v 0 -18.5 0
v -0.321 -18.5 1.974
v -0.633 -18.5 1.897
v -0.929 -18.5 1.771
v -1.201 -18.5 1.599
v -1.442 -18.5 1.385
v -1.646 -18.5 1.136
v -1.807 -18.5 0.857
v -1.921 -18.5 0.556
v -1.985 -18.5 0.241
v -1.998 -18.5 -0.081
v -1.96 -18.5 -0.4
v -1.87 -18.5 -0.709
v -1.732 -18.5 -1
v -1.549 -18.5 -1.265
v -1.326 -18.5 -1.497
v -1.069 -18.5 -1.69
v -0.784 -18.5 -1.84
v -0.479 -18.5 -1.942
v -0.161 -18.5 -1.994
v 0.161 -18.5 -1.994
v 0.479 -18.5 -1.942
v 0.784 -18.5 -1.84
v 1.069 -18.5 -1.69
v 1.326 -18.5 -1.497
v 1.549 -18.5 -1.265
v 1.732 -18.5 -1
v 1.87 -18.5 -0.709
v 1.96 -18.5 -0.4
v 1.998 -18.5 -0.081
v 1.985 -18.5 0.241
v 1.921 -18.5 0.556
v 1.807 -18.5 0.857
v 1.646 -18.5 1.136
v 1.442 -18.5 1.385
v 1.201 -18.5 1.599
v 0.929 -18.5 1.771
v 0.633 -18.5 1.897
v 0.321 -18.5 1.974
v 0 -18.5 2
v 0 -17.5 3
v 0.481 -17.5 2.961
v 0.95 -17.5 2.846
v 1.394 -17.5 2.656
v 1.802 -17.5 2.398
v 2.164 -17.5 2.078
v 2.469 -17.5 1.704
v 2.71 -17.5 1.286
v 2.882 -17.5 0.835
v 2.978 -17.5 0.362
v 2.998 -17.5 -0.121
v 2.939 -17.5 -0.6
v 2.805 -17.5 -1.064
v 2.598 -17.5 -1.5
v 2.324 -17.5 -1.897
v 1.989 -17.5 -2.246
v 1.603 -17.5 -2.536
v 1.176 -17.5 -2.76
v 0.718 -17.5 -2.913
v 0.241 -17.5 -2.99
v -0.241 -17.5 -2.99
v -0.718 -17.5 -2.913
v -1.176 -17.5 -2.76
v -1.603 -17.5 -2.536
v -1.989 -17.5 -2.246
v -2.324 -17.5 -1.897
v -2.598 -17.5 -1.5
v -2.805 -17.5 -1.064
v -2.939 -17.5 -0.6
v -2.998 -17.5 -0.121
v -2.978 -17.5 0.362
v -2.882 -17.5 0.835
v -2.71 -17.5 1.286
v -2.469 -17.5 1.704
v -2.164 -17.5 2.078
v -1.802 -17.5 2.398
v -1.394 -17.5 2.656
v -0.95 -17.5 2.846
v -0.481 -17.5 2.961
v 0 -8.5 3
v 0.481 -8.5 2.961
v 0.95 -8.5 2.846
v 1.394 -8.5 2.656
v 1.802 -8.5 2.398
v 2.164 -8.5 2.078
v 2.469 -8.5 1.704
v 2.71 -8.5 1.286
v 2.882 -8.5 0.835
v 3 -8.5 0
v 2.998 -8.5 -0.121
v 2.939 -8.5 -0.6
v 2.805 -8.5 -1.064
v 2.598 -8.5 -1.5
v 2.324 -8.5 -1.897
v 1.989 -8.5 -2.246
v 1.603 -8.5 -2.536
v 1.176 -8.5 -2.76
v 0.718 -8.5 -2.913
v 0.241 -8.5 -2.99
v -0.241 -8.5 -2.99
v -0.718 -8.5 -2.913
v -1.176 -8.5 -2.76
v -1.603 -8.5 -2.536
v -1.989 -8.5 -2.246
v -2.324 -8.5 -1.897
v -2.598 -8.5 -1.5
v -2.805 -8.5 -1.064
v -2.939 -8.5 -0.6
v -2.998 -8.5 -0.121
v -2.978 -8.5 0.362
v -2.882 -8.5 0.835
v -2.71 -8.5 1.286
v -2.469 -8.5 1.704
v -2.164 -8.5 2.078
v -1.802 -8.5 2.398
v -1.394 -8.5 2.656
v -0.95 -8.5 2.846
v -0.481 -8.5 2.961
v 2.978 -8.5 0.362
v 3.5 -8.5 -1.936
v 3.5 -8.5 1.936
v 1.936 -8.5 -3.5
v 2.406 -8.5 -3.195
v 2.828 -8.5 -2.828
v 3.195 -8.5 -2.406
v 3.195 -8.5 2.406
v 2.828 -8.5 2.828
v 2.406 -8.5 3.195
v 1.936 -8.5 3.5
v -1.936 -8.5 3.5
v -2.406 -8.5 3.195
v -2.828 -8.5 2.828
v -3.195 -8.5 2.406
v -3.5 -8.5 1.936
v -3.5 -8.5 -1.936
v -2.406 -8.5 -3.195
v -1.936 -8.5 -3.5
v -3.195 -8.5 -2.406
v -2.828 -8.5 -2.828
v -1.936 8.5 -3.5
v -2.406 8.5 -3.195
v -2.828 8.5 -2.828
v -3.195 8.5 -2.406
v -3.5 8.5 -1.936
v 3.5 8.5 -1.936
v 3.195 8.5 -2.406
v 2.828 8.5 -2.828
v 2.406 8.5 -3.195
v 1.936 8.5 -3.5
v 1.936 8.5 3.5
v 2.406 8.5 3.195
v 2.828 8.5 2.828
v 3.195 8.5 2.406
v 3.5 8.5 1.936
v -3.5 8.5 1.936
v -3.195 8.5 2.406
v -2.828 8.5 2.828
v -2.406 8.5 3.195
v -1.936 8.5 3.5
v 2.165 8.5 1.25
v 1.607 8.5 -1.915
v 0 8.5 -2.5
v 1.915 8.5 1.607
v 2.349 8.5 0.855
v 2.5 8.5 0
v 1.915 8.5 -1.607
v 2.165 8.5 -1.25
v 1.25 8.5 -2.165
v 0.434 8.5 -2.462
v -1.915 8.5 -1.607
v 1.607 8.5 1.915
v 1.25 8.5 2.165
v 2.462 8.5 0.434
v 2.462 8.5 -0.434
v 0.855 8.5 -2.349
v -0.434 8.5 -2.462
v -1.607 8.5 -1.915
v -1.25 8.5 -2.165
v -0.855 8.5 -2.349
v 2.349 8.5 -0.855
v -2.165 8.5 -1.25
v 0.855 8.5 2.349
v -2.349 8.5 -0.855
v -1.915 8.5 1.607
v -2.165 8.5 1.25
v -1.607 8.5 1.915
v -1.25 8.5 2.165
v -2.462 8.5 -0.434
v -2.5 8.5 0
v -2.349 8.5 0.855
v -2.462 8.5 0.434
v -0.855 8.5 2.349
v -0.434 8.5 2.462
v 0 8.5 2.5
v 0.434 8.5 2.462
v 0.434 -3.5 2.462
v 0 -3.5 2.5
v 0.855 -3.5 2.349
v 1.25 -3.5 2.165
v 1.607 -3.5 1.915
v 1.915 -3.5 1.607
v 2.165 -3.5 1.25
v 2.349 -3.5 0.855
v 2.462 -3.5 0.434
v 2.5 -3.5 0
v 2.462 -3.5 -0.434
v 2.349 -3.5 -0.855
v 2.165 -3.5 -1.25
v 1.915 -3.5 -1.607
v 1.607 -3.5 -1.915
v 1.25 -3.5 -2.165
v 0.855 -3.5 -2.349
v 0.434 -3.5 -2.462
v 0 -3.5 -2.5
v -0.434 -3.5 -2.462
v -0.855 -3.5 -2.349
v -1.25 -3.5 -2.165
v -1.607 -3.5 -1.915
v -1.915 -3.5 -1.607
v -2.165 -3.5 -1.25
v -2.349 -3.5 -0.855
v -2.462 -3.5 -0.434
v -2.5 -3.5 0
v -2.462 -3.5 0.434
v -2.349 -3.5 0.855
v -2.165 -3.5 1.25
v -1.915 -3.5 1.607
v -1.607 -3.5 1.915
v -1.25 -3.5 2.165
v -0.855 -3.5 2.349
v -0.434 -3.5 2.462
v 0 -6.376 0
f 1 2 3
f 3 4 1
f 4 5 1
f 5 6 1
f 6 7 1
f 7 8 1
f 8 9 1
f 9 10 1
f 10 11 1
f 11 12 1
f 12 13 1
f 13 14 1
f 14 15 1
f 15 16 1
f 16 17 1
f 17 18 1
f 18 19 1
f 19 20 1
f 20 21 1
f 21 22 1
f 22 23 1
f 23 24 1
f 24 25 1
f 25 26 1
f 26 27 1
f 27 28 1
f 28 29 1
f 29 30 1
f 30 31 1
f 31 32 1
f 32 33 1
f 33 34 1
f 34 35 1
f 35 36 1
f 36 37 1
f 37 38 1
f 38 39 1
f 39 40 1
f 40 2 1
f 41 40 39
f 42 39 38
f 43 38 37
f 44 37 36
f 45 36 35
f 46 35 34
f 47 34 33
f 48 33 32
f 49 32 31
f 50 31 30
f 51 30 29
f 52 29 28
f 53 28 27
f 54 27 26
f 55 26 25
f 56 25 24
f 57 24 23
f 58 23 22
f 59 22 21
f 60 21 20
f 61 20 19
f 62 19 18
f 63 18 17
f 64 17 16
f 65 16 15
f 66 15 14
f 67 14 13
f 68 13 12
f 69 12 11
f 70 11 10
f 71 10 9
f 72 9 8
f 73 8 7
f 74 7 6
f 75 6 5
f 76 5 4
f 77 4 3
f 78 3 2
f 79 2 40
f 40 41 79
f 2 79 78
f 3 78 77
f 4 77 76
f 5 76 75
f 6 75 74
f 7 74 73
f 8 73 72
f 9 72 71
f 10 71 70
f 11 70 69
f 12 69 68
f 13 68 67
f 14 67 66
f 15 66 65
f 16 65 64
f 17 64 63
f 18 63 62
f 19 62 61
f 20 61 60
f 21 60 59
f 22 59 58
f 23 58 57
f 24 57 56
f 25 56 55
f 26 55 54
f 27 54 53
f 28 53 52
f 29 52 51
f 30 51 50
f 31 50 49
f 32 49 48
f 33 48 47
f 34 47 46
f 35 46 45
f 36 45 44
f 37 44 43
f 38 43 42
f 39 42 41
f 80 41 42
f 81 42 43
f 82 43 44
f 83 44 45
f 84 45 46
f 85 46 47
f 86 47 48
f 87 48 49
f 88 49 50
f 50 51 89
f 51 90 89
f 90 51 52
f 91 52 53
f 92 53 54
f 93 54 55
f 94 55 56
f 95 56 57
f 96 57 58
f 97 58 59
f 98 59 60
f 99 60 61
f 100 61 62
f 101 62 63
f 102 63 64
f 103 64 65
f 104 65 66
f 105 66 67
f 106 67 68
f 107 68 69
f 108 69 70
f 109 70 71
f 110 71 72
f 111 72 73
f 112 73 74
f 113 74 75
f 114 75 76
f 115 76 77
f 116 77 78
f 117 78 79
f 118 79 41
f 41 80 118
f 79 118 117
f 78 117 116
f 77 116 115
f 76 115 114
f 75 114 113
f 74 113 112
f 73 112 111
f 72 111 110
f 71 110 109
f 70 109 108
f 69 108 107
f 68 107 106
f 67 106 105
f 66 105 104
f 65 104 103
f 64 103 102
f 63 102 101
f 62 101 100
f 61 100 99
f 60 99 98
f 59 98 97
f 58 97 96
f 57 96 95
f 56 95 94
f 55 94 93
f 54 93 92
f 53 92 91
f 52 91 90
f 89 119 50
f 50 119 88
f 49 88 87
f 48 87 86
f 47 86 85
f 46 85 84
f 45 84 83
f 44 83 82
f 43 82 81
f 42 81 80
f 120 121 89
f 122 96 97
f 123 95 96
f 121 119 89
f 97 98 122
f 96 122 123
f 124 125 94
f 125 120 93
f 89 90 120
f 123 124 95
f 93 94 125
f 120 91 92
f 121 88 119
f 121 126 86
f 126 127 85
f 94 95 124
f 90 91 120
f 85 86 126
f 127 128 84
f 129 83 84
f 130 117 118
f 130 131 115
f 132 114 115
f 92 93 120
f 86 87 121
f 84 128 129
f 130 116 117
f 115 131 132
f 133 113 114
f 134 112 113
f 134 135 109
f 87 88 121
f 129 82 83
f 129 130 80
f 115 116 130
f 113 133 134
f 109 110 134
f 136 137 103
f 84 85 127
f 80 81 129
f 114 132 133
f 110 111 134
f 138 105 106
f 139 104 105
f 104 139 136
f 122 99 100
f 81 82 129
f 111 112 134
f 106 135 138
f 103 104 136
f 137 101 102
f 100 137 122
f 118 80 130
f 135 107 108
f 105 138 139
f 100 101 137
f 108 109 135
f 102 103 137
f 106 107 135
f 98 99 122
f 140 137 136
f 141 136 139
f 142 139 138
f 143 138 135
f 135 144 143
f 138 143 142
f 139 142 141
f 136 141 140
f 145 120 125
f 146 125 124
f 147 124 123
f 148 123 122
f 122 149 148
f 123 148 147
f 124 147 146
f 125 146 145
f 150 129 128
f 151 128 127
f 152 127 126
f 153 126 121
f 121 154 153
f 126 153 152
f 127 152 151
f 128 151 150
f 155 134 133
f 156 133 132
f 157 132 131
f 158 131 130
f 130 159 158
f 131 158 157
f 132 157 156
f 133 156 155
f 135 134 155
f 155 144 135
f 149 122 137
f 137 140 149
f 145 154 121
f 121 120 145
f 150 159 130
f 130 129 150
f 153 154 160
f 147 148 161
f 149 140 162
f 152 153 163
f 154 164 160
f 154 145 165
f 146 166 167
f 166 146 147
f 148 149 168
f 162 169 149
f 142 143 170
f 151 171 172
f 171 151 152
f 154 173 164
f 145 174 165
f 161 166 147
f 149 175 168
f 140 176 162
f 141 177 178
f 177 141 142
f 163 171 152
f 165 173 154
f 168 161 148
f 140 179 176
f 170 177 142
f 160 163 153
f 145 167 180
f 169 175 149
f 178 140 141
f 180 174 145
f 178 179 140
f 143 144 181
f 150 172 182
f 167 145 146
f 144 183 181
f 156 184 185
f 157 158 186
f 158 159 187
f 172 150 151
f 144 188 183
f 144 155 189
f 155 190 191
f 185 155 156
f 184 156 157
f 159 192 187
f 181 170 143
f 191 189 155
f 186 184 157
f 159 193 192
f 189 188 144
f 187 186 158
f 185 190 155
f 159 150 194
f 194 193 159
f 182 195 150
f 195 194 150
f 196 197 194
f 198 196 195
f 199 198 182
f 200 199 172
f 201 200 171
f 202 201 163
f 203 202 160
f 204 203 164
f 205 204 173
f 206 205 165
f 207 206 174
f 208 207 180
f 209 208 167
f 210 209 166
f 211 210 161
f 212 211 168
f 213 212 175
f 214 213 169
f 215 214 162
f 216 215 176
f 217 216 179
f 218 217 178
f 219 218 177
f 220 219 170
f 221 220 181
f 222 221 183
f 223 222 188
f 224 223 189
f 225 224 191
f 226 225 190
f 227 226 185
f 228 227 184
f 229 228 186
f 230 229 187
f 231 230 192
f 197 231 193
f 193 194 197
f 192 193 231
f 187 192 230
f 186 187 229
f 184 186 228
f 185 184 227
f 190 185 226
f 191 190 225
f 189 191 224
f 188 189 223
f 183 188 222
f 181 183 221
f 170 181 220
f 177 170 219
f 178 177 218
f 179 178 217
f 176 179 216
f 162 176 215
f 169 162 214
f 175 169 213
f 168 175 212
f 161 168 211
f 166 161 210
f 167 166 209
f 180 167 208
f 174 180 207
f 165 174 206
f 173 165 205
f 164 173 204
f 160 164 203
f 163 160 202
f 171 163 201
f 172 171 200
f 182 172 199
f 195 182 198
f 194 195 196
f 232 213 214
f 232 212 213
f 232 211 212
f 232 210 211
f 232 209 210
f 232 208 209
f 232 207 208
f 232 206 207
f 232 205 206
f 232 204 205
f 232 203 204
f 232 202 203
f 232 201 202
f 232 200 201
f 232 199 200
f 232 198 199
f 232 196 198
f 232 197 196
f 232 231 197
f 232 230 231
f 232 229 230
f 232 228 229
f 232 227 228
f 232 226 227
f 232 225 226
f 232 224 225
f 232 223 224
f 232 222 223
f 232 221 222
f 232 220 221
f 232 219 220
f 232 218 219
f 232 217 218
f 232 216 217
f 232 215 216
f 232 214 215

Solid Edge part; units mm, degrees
sketch "Sketch1" plane through (0, 0, 0) normal (0, -1, 0) x (1, 0, 0)
  circle A0 centre (0, 0) radius 4
  dimension "D1" = 8
extrude "Protrusion1" add sketch "Sketch1" along normal mid plane 17
sketch "Sketch2" plane through (0, -8.5, 0) normal (0, -1, 0) x (1, 0, 0)
  circle A0 centre (0, 0) radius 3
  dimension "D1" = 6
extrude "ProtrusiónExtruida_2" add sketch "Sketch2" along normal blind 10
chamfer "Chaflán_1" distance 1 angle 45 1 edges at (-3, -18.5, 0)
sketch "Sketch3" plane through (0, 8.5, 0) normal (0, 1, 0) x (0, 0, -1)
  line L0 (3.5, -3.5) -> (-3.5, -3.5)
  line L1 (-3.5, -3.5) -> (-3.5, 3.5)
  line L2 (-3.5, 3.5) -> (3.5, 3.5)
  line L3 (3.5, 3.5) -> (3.5, -3.5)
  line L4 (5, 5) -> (-5, 5)
  line L5 (-5, 5) -> (-5, -5)
  line L6 (-5, -5) -> (5, -5)
  line L7 (5, -5) -> (5, 5)
  dimension "D1" = 7
  dimension "D2" = 10
extrude "Cutout1" cut sketch "Sketch3" against normal through all
hole "Agujero_1" at (0, 8.5, 0) direction (0, -1, 0) diameter 5 depth 12 tip angle 82
